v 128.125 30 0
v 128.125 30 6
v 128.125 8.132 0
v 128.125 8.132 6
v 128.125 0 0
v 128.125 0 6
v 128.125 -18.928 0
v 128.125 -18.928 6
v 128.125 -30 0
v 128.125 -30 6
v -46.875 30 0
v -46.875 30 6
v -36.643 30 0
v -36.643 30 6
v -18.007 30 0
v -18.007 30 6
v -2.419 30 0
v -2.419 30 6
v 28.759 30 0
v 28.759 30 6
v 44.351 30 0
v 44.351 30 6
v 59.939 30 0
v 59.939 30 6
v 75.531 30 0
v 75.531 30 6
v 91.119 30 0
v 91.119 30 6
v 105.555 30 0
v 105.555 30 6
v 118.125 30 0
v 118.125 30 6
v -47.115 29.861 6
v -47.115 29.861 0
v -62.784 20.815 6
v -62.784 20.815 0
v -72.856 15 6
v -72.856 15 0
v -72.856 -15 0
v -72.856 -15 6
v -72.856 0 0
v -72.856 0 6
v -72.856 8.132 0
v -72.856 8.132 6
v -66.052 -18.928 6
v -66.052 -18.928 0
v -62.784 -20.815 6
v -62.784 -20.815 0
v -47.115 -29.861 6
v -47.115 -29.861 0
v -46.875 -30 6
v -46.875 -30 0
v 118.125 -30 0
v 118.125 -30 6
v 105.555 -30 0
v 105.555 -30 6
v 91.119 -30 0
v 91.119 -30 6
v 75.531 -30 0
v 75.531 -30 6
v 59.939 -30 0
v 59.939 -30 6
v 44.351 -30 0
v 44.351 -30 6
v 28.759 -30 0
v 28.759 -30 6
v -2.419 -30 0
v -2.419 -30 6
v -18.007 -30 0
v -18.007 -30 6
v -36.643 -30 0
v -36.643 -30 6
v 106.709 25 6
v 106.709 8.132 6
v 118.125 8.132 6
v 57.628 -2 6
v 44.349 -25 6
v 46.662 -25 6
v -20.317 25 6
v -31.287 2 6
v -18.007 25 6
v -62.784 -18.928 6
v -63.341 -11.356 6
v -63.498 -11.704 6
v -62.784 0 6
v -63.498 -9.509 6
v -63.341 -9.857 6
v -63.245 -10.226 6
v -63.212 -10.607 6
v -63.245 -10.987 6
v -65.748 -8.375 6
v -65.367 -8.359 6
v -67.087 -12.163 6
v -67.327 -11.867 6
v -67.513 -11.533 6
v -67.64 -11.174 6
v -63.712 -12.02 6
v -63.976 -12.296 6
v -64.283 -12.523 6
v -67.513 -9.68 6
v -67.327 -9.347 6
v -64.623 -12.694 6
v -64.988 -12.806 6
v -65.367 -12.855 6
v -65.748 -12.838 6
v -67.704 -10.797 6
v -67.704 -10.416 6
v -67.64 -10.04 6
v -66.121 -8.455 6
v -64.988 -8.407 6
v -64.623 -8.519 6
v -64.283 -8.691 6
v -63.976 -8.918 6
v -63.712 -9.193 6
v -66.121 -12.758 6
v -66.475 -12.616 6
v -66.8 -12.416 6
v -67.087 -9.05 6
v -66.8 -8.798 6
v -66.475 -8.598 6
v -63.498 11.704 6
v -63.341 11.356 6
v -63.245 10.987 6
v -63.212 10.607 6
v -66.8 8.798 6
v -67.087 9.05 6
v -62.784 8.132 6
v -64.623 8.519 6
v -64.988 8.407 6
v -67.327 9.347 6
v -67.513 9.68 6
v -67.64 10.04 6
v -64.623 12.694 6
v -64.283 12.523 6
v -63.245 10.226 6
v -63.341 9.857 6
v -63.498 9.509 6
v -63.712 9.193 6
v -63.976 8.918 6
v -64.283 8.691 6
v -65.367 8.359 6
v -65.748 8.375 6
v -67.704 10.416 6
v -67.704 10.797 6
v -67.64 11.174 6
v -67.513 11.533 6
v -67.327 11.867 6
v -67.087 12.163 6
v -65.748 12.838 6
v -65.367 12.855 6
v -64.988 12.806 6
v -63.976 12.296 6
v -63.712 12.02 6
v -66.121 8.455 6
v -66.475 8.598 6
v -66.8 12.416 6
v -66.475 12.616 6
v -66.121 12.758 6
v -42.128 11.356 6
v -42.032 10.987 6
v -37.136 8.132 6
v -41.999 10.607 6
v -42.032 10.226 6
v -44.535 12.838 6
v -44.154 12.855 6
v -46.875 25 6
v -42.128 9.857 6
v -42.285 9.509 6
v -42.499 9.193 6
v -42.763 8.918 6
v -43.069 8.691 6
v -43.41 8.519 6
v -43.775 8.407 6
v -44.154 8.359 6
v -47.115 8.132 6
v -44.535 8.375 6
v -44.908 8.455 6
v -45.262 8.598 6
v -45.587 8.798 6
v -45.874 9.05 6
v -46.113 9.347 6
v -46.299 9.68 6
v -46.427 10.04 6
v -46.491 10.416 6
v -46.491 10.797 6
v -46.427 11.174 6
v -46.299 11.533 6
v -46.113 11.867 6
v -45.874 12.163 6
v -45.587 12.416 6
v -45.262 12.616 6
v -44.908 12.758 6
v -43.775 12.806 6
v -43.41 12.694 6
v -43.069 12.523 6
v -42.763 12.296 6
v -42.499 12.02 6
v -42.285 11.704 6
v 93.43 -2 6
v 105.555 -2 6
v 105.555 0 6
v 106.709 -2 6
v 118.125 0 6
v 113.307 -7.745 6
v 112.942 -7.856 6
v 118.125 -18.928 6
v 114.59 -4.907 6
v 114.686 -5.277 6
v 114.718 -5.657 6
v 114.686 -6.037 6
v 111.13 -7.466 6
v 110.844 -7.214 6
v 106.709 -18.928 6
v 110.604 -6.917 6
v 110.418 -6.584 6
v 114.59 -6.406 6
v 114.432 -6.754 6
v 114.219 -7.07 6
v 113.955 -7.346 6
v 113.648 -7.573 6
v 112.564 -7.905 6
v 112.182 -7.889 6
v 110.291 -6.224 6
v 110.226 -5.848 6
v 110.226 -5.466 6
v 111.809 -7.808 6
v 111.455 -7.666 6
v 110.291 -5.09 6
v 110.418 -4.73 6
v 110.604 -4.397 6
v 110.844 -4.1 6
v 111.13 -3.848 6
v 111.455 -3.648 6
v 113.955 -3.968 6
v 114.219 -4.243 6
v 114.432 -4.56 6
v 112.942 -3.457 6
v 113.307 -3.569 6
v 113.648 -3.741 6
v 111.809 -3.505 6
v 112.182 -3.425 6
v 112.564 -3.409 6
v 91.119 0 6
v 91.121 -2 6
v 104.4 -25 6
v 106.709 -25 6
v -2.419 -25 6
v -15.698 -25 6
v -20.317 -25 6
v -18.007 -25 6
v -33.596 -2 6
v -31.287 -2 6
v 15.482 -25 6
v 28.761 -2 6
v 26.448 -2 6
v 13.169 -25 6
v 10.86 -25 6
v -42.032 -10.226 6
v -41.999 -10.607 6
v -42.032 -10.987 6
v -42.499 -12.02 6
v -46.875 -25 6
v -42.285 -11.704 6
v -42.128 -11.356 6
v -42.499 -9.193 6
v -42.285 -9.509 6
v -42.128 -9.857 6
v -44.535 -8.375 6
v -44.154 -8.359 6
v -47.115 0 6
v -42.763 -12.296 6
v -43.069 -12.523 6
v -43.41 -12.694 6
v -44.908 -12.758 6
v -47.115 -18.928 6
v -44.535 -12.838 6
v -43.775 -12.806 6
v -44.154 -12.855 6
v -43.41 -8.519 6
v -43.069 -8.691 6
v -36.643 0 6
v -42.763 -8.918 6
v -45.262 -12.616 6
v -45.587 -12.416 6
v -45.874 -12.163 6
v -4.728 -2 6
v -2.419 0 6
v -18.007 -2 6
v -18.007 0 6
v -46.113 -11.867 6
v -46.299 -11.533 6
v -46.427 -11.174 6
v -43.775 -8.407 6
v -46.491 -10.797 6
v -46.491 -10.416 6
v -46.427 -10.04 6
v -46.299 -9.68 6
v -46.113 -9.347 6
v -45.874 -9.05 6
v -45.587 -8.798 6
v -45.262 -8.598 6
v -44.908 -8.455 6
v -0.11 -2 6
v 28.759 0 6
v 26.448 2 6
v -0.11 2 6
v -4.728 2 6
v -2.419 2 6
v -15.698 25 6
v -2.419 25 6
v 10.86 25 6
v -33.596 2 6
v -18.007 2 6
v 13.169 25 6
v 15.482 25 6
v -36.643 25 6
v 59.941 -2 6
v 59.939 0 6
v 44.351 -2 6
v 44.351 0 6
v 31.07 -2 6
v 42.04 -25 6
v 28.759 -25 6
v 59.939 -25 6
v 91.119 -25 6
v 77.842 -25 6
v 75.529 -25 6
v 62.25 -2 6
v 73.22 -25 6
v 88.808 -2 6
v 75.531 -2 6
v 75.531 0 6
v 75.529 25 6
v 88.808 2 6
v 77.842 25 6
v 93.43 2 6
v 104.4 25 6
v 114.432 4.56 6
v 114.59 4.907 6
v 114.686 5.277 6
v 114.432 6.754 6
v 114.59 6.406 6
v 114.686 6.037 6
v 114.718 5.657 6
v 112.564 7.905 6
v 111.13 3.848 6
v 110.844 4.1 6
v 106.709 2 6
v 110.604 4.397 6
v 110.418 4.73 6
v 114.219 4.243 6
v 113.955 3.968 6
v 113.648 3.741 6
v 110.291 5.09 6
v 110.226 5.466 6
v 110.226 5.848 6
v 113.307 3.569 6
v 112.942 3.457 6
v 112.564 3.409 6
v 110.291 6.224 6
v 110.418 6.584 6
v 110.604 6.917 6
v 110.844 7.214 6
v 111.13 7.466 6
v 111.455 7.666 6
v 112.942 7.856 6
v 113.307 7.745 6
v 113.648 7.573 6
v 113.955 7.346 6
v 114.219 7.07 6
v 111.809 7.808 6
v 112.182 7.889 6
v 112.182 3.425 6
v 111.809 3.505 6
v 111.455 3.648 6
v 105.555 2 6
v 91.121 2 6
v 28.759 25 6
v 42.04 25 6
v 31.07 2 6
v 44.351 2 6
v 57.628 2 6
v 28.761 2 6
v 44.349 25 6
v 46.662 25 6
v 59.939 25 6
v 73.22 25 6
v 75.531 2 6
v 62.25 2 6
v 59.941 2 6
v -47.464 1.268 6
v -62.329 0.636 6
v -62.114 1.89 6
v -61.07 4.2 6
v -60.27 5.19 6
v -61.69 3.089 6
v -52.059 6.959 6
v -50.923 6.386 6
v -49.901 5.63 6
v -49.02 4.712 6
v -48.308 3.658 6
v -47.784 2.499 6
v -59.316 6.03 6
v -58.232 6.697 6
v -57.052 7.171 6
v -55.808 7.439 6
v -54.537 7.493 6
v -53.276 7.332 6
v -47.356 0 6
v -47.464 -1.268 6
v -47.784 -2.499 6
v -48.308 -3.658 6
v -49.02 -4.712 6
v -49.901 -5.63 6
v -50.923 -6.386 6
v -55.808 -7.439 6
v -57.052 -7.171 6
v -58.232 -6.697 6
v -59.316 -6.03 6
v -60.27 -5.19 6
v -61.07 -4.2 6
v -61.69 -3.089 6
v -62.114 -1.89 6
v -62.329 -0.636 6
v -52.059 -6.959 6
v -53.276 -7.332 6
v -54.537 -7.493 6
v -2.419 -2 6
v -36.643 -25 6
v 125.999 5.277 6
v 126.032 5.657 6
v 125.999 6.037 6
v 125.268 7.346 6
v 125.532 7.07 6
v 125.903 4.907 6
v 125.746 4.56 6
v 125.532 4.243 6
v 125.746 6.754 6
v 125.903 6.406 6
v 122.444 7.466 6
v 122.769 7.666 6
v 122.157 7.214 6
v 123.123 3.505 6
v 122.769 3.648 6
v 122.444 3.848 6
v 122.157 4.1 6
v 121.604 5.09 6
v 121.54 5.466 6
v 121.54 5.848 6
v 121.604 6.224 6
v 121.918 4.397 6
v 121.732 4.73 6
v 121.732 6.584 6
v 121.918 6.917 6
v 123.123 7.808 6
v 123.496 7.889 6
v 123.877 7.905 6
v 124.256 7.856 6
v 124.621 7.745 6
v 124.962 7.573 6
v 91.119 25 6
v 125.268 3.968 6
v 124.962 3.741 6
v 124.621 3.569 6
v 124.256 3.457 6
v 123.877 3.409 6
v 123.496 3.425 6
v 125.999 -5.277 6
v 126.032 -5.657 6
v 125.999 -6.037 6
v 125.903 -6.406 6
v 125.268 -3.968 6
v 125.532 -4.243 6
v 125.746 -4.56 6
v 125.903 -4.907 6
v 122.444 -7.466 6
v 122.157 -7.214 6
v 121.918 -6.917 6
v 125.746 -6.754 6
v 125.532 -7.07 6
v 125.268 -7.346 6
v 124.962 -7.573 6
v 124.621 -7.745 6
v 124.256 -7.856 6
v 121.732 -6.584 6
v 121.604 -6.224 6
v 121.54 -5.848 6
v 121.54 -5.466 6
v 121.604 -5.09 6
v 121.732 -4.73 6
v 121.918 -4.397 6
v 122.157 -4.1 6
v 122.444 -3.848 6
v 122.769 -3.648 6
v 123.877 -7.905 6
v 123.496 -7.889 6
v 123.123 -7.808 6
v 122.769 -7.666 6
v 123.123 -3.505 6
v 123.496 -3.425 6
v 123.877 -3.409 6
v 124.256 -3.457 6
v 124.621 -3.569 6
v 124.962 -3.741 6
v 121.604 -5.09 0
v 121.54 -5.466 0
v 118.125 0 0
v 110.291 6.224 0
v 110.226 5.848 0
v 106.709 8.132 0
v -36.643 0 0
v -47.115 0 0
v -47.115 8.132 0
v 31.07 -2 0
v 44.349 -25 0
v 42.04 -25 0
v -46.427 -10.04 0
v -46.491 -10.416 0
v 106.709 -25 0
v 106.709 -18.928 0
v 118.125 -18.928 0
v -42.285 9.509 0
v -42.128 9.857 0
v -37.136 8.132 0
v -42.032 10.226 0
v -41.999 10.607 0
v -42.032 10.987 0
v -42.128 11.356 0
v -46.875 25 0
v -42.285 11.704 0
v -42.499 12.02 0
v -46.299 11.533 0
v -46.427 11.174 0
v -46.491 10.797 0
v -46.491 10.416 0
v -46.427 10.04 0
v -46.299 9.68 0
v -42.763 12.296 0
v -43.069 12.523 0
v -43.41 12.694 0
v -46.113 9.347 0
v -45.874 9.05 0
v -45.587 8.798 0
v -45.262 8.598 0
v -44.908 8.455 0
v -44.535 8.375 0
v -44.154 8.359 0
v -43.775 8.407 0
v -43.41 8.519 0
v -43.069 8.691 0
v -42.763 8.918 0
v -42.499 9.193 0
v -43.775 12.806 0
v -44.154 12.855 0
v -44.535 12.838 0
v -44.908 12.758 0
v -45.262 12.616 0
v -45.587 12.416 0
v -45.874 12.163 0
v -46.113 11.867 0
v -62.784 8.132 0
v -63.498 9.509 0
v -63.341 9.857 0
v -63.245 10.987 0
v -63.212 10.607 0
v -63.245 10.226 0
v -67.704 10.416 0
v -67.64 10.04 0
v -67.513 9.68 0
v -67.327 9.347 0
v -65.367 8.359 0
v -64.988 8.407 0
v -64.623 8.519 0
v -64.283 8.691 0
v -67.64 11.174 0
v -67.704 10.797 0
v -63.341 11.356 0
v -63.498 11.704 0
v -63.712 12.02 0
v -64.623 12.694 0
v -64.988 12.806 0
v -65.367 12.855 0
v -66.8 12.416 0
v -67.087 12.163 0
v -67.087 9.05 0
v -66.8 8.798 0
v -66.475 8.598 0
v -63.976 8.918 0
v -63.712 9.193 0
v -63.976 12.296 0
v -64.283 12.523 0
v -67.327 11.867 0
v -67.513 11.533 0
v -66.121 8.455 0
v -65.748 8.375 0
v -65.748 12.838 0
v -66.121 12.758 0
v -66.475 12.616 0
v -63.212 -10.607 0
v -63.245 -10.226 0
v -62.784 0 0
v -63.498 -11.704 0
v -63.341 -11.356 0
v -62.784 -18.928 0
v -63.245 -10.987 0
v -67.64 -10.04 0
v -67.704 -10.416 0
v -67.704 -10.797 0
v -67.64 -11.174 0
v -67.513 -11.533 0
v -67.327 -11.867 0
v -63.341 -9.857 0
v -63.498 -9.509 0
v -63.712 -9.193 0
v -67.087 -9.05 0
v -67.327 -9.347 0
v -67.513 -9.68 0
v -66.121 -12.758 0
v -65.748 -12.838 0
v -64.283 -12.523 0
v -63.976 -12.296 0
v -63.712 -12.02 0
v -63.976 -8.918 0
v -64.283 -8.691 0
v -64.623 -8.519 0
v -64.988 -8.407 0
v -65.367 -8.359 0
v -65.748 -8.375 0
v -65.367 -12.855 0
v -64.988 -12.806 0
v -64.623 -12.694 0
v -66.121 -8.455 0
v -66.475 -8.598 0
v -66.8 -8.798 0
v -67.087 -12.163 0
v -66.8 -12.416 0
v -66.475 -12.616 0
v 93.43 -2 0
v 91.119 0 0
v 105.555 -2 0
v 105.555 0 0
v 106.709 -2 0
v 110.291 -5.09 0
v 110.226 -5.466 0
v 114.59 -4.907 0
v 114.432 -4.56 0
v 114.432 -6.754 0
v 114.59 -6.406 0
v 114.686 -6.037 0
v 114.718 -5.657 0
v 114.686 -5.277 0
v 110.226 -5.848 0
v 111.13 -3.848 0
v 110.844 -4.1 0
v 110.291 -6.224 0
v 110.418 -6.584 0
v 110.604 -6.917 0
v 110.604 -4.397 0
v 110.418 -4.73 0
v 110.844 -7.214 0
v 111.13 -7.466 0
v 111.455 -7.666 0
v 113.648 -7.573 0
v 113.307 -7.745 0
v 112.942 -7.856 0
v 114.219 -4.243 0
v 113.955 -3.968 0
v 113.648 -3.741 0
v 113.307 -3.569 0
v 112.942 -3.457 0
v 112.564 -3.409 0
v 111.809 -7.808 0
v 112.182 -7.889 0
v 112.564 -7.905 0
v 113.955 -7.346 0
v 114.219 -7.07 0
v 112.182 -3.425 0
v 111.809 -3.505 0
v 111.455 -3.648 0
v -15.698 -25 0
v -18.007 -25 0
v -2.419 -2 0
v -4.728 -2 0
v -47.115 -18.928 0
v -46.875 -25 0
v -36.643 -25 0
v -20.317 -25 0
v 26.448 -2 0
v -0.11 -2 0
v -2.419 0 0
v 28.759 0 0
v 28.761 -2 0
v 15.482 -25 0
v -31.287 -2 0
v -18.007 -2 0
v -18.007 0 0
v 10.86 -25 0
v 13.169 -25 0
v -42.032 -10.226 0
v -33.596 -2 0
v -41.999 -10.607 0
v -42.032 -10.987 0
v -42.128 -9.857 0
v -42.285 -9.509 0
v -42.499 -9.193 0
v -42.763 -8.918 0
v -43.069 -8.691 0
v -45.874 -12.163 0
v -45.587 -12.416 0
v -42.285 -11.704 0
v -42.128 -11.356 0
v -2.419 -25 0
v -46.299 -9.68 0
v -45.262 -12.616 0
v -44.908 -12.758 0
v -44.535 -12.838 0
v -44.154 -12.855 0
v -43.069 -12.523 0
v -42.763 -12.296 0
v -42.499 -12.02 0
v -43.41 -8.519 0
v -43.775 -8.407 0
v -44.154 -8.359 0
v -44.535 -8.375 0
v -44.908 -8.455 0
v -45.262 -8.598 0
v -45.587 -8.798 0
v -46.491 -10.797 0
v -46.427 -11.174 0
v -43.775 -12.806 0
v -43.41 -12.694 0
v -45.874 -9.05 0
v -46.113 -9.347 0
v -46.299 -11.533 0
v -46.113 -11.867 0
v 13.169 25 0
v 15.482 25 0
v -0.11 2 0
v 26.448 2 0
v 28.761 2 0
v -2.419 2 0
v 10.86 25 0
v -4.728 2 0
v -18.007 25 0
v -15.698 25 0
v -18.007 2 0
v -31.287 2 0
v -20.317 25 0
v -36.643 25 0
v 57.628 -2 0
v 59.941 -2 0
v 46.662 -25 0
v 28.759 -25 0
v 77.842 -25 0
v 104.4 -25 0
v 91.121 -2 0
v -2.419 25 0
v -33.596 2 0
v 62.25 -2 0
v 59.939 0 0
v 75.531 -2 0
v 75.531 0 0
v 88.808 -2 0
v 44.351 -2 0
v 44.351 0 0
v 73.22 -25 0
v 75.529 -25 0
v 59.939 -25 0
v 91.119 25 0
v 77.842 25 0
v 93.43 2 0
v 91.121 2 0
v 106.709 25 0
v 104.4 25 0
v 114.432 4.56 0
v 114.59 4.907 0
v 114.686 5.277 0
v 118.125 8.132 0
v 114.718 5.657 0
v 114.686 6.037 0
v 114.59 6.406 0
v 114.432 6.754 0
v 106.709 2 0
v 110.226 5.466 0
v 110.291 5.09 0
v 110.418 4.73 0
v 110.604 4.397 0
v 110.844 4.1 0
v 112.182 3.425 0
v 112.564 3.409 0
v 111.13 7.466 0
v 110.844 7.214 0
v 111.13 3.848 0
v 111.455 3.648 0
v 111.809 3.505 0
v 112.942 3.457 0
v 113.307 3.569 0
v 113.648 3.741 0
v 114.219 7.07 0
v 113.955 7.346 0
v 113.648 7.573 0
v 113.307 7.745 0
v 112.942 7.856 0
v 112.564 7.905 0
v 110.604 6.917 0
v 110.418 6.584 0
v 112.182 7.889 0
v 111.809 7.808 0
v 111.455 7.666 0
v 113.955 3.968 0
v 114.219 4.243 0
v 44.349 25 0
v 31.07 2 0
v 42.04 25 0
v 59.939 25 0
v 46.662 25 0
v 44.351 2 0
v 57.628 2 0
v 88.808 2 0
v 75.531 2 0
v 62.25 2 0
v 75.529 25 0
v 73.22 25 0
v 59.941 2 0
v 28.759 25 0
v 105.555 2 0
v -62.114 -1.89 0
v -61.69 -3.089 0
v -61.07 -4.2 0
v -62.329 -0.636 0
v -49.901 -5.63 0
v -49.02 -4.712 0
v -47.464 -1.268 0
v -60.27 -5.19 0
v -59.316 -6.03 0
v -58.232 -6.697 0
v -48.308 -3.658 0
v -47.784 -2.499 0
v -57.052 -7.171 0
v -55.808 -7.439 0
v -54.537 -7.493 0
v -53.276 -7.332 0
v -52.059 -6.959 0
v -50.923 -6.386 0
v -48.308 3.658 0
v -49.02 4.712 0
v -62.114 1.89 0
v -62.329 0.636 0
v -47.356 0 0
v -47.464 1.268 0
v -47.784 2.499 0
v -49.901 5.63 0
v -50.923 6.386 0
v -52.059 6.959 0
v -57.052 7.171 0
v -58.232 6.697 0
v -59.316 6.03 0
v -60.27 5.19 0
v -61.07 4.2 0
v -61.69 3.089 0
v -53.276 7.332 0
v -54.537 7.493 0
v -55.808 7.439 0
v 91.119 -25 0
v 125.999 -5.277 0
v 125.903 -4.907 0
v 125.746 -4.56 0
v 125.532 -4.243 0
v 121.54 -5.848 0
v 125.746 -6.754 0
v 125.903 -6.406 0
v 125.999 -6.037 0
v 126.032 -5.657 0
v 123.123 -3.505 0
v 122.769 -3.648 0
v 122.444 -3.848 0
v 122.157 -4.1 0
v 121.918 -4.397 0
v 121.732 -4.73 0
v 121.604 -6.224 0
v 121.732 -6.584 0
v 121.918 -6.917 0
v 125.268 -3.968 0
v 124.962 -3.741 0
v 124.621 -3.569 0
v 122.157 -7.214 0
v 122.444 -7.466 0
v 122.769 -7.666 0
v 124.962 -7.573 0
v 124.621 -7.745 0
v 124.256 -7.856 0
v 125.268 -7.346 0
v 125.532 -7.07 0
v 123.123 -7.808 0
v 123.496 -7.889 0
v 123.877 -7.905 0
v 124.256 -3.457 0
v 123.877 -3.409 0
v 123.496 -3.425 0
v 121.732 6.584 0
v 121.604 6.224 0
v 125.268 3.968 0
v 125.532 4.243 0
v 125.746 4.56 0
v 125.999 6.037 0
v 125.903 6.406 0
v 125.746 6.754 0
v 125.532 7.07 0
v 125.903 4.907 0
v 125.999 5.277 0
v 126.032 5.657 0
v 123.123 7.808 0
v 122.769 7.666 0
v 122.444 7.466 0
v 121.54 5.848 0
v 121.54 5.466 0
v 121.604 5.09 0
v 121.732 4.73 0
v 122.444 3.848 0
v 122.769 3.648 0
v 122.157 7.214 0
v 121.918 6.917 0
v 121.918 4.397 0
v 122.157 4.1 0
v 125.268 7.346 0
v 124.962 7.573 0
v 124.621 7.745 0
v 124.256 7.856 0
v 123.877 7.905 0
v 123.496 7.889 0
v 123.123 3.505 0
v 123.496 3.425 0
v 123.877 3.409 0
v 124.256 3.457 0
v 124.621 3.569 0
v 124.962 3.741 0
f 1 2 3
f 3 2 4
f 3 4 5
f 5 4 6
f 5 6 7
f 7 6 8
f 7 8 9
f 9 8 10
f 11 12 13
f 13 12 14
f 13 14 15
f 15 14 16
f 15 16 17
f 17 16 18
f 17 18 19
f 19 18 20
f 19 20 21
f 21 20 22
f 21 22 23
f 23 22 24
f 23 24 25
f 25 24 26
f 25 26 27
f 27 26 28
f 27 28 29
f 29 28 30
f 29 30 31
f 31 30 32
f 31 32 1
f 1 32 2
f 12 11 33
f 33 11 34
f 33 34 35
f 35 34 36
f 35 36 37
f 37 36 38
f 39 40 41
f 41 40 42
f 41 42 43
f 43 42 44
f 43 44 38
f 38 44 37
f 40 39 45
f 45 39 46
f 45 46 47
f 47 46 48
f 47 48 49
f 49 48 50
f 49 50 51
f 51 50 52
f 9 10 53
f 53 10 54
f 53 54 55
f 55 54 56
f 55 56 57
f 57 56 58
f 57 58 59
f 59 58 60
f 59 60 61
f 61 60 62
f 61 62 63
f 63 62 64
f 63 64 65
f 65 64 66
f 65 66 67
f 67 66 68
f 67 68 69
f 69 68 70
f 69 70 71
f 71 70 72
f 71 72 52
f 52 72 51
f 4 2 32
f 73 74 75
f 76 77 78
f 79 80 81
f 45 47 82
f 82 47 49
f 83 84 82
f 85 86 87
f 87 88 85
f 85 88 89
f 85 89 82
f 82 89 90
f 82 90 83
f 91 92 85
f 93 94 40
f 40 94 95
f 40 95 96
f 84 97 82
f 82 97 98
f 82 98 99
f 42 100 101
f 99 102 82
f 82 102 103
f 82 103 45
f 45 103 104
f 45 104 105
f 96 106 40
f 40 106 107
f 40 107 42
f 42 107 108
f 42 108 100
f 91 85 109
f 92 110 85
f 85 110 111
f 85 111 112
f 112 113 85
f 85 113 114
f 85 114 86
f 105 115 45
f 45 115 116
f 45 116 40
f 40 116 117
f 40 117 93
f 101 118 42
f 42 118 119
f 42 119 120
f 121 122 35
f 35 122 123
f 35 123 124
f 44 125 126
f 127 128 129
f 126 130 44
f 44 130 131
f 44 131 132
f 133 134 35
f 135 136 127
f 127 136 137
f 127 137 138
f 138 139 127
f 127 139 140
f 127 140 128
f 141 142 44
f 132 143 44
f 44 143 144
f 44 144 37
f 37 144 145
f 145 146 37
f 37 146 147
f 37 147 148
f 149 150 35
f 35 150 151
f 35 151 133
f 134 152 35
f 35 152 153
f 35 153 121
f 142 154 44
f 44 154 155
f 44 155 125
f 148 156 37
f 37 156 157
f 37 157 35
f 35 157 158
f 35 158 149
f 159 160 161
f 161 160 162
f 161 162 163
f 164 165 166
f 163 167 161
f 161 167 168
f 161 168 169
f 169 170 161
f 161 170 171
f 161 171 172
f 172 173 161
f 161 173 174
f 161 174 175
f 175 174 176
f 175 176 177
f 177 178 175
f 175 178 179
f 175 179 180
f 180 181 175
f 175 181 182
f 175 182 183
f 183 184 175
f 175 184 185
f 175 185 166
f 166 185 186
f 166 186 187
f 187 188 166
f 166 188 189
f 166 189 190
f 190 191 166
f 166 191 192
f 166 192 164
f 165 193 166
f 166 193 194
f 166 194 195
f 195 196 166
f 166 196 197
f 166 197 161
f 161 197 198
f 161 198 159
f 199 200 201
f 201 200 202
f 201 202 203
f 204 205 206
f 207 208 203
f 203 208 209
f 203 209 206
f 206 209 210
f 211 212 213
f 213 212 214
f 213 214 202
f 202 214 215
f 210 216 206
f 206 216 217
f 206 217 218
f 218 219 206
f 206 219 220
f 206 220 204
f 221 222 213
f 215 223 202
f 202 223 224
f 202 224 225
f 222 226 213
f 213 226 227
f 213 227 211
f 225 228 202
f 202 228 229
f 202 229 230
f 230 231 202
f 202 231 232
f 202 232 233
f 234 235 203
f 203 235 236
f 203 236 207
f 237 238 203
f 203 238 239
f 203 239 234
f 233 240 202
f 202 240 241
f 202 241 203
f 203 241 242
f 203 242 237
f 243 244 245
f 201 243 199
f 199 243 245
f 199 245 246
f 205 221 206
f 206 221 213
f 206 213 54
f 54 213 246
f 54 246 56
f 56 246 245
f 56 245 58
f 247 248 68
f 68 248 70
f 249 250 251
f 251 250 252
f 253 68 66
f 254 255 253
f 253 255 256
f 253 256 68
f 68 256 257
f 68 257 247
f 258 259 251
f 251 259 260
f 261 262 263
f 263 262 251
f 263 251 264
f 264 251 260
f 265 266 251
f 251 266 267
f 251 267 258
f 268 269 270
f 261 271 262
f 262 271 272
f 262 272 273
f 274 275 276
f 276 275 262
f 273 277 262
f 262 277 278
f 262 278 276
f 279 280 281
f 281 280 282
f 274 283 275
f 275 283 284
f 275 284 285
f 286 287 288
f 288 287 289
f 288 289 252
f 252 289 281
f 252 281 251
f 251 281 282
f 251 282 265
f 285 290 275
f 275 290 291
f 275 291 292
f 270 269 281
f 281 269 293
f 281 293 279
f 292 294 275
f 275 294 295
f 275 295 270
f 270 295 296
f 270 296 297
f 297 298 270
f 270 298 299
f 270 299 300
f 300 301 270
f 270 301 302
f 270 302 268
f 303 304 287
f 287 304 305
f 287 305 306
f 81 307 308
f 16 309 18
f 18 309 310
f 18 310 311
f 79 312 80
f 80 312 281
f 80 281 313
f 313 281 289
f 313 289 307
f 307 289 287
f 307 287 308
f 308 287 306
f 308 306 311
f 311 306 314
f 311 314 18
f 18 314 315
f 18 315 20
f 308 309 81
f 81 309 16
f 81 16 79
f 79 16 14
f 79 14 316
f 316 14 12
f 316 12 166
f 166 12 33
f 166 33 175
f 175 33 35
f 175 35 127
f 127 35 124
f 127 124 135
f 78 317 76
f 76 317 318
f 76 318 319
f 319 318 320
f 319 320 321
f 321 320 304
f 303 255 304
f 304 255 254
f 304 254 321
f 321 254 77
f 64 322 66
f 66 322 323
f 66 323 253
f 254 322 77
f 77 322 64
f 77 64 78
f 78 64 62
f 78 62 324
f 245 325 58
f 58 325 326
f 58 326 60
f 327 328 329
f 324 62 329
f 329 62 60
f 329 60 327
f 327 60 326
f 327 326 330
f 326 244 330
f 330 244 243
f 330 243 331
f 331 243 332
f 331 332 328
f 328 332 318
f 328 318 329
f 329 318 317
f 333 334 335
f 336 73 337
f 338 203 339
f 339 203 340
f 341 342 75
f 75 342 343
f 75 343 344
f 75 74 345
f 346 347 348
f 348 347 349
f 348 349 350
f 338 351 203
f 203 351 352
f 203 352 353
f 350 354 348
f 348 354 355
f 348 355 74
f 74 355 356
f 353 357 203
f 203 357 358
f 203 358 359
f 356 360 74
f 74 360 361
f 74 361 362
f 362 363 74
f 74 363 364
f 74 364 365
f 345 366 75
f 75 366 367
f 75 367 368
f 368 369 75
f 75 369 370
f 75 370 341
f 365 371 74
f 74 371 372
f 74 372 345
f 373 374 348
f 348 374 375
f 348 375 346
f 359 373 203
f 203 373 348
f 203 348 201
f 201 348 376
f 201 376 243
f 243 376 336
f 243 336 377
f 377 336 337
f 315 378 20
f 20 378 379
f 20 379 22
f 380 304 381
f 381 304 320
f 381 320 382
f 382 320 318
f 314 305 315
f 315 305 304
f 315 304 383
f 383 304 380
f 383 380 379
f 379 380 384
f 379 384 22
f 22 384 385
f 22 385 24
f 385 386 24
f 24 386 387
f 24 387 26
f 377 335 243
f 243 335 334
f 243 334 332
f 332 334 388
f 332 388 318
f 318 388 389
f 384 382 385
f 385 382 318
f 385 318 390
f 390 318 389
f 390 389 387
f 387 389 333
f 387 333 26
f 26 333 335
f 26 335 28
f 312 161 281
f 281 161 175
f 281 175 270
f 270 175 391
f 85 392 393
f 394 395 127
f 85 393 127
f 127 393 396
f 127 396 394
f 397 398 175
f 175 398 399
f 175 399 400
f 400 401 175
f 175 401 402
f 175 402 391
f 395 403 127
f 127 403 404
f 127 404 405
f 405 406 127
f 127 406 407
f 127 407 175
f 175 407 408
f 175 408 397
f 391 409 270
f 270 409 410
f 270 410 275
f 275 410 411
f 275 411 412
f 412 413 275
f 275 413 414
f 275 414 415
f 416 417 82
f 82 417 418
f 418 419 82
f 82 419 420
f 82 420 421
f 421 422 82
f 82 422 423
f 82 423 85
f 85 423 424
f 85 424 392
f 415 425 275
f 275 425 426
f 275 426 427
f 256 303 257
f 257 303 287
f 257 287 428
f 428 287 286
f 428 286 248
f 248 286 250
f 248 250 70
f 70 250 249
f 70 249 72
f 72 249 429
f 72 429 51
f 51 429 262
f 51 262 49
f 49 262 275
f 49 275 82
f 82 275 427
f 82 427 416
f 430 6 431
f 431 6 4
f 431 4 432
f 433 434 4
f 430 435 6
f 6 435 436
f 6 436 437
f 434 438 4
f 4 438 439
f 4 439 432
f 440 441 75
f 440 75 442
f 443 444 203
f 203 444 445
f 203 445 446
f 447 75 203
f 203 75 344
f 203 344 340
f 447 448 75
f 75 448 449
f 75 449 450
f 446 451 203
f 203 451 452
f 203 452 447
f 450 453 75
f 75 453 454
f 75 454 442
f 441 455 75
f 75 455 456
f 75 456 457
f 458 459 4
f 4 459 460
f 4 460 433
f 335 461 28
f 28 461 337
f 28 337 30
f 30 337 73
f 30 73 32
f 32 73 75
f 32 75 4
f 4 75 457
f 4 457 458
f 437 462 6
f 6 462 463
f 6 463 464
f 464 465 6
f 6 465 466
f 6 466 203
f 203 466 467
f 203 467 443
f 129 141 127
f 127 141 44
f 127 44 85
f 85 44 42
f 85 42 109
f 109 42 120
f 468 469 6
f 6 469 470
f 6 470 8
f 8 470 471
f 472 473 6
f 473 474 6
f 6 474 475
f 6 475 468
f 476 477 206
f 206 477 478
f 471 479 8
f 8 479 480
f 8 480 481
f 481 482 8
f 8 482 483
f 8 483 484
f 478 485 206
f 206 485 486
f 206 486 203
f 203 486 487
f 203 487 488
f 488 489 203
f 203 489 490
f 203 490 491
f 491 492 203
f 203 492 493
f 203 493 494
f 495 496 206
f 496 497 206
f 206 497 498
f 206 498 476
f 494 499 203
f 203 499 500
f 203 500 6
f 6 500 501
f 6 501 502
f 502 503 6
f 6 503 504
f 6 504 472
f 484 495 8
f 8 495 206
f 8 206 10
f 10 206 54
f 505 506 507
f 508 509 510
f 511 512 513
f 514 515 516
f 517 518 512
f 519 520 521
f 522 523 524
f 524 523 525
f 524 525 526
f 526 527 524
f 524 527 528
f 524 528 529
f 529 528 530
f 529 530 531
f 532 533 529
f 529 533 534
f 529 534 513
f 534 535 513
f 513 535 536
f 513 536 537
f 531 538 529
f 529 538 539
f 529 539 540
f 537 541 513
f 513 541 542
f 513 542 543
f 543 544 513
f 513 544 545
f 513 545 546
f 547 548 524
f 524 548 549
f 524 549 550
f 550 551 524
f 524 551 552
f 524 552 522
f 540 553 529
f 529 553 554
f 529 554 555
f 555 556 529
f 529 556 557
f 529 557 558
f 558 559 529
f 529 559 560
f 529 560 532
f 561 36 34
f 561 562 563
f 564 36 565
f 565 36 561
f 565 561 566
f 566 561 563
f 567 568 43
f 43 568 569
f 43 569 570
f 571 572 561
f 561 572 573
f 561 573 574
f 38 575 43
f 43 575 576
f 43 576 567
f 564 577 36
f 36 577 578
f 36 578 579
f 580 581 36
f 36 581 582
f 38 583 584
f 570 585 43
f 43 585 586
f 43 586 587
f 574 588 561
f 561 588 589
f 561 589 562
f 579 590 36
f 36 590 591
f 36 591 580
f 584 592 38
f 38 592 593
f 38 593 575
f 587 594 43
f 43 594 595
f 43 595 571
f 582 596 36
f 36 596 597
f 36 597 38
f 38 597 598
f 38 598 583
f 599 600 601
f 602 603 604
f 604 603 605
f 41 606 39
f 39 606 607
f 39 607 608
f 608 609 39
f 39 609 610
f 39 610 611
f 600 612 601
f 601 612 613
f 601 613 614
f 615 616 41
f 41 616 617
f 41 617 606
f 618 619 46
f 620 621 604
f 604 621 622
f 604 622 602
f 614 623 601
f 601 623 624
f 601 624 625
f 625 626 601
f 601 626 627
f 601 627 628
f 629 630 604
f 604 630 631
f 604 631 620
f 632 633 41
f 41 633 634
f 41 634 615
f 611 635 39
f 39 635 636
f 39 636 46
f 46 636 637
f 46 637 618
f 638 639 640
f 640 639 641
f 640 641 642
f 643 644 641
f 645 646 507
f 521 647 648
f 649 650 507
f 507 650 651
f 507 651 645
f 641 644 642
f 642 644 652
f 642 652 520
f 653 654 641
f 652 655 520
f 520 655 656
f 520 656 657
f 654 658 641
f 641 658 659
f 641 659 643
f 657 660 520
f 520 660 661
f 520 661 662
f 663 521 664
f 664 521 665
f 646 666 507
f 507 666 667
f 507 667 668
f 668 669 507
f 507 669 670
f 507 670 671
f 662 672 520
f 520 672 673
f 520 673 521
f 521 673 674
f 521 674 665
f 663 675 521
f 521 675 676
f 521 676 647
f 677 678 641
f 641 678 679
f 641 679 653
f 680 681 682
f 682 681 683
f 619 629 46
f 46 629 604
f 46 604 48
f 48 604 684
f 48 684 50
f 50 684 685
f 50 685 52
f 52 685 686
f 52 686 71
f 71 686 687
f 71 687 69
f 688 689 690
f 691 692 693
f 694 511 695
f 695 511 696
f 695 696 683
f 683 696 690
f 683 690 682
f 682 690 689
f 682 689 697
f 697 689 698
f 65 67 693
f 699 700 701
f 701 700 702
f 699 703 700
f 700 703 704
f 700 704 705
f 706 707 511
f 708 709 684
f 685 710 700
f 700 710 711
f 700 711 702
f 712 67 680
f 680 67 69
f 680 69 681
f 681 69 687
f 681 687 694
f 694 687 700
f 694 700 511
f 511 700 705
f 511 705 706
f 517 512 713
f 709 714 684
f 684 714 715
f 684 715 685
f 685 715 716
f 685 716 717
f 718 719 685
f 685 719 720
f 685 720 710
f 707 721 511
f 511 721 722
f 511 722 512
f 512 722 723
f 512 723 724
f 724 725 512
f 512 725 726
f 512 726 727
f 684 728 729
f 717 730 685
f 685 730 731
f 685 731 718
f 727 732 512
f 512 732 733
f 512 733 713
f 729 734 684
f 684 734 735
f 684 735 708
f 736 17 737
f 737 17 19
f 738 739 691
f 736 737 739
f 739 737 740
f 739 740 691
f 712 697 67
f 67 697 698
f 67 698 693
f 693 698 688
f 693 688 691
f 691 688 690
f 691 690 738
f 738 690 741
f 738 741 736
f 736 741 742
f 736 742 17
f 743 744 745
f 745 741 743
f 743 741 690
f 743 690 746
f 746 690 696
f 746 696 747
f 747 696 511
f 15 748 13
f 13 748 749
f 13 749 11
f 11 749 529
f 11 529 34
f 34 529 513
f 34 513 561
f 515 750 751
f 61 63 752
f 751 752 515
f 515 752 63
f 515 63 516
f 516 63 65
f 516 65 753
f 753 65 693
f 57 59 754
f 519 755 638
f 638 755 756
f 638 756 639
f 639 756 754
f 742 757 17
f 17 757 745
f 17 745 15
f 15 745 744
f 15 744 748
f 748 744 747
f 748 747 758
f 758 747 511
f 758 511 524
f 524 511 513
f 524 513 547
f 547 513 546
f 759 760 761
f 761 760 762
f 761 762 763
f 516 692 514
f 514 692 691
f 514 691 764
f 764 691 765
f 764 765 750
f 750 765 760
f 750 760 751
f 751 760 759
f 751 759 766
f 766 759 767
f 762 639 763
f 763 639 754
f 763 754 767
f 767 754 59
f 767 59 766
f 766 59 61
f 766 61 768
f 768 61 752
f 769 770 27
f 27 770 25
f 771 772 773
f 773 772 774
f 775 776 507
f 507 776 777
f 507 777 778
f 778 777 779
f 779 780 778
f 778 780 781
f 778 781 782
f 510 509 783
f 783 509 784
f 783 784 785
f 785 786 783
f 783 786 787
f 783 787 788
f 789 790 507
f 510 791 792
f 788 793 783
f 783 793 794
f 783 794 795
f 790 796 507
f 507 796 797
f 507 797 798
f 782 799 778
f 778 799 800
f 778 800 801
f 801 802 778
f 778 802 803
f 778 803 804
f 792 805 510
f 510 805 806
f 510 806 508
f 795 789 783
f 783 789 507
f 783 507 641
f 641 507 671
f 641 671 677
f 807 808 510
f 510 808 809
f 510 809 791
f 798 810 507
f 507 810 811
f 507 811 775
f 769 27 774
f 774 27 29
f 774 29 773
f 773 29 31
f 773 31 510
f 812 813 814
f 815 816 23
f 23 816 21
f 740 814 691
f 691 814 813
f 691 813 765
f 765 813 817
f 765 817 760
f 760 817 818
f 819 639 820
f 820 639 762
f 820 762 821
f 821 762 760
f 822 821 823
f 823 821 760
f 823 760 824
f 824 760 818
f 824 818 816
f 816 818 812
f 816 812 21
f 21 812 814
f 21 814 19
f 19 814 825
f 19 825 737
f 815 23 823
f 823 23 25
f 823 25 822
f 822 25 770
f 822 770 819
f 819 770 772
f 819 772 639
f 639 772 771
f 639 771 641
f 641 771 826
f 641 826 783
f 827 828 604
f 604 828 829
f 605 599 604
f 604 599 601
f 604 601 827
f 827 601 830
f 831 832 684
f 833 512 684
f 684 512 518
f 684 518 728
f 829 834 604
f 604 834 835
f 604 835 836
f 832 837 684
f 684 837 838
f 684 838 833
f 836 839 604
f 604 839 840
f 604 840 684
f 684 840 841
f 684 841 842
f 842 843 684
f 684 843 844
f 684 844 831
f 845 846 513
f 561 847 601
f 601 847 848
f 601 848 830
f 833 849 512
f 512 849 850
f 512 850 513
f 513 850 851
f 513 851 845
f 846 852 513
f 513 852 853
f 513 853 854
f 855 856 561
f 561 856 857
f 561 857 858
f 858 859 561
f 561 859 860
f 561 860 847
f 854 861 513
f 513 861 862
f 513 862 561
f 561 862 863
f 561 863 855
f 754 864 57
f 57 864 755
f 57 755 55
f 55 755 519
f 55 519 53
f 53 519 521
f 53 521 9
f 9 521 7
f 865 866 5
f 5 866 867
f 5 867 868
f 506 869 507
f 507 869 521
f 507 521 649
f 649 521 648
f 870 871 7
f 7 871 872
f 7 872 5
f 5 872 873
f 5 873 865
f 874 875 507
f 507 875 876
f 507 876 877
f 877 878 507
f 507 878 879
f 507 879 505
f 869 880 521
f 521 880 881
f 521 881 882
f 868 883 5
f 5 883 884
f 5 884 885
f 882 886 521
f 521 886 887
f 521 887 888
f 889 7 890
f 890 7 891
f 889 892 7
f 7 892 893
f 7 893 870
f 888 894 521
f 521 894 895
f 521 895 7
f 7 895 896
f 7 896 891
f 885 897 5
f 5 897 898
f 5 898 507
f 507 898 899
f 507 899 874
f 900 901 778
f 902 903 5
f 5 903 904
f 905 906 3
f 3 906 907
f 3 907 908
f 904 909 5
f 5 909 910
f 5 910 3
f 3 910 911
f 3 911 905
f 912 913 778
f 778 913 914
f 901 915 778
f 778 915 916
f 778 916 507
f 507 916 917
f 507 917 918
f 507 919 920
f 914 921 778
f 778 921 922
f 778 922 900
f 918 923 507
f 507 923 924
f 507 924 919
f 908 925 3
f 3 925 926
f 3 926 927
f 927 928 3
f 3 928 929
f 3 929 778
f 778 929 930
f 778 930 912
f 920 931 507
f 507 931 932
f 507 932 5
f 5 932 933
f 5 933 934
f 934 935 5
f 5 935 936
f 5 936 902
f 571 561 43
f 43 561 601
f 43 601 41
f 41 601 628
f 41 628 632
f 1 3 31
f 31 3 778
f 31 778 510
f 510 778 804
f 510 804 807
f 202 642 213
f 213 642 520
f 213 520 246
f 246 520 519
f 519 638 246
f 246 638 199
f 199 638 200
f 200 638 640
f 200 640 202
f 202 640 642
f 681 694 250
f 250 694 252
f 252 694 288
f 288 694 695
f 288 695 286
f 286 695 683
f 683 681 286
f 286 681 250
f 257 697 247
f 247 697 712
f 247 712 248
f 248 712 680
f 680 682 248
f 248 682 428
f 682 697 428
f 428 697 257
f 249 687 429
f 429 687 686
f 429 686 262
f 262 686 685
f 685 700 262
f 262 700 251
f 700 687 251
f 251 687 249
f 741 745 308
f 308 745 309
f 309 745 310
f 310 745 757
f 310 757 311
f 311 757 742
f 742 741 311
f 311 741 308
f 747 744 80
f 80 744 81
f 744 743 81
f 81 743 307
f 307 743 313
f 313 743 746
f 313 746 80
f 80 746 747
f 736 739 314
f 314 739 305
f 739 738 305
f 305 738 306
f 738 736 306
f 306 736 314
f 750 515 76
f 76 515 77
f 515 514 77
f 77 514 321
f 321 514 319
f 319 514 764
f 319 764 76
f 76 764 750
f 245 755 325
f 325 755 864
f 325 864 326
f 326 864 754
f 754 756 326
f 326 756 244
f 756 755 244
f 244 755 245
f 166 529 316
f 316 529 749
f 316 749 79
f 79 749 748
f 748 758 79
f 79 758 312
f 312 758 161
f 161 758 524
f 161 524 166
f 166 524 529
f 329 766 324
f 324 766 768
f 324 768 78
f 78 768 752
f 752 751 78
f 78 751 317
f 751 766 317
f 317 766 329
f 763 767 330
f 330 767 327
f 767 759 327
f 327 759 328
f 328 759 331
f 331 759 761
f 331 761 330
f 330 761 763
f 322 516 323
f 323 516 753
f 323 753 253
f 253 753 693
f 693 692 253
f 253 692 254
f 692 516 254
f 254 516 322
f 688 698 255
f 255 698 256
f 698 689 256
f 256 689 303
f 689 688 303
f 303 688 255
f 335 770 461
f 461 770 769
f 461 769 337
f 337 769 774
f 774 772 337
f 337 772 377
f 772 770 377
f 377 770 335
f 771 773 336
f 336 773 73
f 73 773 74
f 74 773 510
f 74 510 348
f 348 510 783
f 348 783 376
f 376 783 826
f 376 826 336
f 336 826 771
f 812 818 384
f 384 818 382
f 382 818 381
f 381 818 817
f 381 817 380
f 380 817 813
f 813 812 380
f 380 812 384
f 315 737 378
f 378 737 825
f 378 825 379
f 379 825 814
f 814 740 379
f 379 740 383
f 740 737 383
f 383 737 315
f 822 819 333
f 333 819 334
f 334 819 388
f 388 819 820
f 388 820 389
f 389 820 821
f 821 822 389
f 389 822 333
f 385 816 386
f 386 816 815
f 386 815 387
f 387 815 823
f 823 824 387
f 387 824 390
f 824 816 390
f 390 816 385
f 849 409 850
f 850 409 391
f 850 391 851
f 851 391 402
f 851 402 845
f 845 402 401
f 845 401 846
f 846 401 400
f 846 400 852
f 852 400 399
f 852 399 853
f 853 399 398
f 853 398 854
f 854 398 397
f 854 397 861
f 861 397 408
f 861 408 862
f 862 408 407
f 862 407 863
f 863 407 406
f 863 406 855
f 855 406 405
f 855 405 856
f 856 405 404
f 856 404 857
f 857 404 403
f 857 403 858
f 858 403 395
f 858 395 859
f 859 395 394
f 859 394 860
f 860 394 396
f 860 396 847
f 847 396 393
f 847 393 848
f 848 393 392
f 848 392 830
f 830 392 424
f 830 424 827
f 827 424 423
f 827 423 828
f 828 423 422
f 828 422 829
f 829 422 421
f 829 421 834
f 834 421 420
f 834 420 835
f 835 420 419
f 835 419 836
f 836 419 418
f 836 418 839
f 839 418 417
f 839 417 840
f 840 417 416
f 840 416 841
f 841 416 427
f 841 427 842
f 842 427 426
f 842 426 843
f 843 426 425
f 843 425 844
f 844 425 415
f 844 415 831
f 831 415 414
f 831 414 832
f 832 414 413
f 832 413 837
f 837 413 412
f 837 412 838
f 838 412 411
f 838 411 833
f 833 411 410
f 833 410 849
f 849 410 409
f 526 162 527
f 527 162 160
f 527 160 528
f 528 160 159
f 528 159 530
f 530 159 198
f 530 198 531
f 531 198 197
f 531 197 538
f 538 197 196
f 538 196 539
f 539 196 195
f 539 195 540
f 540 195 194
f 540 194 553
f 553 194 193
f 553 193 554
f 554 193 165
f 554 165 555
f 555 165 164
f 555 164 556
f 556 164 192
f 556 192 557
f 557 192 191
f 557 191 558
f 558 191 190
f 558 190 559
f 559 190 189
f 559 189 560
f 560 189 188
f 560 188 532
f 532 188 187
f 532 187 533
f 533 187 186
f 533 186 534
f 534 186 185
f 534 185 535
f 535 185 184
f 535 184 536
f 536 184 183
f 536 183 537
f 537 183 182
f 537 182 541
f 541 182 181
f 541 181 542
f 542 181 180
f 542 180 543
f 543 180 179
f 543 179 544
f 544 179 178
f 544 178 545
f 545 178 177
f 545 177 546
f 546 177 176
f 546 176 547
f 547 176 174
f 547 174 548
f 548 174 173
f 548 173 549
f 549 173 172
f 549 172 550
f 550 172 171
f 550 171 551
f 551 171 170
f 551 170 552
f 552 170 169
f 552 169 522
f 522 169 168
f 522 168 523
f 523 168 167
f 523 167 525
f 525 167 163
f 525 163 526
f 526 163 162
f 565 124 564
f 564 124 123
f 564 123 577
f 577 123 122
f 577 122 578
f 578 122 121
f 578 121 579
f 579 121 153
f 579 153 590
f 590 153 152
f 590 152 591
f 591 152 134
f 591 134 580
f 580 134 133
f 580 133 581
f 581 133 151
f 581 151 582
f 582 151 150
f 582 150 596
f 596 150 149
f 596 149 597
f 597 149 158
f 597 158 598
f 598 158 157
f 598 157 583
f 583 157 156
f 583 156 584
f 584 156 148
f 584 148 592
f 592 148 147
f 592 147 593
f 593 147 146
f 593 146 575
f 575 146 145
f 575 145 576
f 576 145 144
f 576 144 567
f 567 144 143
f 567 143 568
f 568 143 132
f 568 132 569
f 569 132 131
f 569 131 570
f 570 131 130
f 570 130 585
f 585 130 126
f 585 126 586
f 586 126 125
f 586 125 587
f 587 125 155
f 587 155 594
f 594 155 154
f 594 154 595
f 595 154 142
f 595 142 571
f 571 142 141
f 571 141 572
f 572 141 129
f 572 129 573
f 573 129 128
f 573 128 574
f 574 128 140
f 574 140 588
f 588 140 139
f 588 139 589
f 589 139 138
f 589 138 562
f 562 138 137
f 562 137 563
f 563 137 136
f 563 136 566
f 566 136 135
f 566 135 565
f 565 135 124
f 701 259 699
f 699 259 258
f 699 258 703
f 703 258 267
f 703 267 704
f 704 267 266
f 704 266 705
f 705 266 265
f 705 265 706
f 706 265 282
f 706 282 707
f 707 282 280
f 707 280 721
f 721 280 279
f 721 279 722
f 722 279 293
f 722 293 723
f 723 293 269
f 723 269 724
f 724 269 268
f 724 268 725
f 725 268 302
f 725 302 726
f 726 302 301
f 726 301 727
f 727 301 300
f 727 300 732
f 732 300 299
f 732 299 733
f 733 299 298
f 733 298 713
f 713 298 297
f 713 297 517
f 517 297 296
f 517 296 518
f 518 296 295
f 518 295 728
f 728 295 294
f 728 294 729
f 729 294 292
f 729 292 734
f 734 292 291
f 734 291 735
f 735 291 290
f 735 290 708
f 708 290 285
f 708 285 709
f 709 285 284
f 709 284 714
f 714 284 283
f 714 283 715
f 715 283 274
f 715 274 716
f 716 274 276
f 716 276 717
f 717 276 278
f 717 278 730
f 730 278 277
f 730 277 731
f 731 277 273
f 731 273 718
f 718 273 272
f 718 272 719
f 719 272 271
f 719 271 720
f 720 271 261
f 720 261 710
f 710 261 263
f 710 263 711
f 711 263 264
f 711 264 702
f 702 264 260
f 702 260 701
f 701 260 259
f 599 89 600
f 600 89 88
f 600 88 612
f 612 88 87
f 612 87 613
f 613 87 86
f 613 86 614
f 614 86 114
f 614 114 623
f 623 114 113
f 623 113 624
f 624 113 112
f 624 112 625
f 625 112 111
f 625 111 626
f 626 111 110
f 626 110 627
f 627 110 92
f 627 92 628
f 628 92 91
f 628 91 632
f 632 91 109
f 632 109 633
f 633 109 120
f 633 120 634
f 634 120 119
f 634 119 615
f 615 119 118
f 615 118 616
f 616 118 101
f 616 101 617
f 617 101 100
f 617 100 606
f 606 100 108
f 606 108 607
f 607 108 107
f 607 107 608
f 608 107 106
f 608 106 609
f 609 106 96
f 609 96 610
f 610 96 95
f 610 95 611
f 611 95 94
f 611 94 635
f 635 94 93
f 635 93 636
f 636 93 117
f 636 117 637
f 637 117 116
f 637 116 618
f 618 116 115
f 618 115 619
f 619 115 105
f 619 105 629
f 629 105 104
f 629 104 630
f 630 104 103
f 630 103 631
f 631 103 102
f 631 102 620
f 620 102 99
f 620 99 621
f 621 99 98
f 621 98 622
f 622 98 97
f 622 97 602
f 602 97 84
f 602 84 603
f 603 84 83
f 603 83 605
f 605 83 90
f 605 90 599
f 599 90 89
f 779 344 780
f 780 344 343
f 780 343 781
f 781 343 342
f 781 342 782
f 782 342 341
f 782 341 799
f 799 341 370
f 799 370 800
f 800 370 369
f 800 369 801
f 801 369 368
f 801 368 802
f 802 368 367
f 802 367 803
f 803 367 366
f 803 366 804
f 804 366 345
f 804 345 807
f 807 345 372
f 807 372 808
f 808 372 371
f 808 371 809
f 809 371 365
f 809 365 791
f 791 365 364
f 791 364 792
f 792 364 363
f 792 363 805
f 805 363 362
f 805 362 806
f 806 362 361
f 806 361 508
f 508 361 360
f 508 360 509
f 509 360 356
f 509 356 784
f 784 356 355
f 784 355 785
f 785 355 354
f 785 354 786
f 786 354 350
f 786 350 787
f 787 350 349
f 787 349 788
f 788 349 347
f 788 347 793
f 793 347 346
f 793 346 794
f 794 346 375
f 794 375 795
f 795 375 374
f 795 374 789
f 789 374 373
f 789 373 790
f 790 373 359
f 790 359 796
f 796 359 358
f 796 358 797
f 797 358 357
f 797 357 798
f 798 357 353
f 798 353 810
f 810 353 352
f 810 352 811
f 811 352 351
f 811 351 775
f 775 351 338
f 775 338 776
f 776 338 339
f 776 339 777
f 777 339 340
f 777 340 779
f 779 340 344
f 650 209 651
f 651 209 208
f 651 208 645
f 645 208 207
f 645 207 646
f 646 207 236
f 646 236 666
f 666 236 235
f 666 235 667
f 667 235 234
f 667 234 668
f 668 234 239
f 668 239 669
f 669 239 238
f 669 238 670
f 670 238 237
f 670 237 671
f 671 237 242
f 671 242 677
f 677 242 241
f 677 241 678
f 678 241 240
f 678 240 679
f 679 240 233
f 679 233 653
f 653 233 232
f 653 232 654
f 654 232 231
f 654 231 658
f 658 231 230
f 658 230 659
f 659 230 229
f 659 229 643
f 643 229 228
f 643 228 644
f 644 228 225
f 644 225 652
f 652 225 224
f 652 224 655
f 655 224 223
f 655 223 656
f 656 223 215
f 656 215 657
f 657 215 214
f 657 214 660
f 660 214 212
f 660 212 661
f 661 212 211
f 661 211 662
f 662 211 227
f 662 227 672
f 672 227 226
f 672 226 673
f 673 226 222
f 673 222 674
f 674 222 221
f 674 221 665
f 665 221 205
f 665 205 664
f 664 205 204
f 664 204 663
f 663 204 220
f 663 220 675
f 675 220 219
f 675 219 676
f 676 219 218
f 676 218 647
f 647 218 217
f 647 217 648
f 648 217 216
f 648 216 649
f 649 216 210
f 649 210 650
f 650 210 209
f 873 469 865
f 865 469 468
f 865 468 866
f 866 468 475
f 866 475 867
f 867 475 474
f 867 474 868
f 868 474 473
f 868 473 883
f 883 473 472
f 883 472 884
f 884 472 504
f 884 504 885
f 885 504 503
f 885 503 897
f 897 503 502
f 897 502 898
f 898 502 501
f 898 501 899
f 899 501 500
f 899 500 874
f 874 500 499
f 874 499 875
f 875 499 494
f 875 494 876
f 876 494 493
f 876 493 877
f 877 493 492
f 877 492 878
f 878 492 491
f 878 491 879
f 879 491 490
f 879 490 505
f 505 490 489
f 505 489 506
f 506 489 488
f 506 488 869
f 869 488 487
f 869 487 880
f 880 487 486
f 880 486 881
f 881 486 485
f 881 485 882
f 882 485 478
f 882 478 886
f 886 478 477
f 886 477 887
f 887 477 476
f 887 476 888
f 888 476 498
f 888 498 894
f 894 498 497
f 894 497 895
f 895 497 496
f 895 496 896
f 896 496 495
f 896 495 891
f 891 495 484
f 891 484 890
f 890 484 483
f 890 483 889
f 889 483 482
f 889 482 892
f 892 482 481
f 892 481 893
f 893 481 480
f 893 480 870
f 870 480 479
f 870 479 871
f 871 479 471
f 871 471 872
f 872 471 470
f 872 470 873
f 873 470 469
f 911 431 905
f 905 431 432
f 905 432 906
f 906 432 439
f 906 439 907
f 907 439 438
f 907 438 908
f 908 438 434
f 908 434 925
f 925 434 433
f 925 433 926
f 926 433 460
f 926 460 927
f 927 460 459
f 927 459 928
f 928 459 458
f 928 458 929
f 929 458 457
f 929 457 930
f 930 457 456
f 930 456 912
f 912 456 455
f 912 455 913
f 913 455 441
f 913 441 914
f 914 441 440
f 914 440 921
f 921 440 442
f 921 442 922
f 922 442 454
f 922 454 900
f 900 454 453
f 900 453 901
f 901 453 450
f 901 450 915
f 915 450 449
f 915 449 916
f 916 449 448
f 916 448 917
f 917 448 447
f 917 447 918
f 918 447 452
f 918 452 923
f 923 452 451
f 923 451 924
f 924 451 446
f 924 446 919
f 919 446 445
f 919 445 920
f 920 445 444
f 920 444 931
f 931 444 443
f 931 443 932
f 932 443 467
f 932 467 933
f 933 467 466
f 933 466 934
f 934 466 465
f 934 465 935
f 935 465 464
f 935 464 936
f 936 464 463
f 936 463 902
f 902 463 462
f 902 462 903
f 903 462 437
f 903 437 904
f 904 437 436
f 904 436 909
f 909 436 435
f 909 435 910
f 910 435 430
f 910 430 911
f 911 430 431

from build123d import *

# Parameters (mm, degrees)
BOSS_EXTRUDE1_DEPTH = 6
CUT_EXTRUDE3_DEPTH  = 132.727049709
HOLE1_D             = 15
HOLE3_D             = 4.5
HOLE4_D             = 4.5


with BuildPart() as part:
    # Sketch1 → Boss-Extrude1 (new body)
    with BuildSketch(Plane(origin=(0, 0, 0), x_dir=(0, 1, 0), z_dir=(0, 0, 1))):
        Polygon((-30, 46.875), (-30, -128.125), (30, -128.125), (30, 46.875), (15, 72.855762114), (-15, 72.855762114), align=None)
    extrude(amount=BOSS_EXTRUDE1_DEPTH)

    # Sketch2 → Cut-Extrude3 (cut, through all)
    with BuildSketch(Plane.XY.offset(6)):
        Polygon((-31.286542732, 2), (-4.728430349, 2), (-18.007486541, 25), align=None)
        Polygon((106.709427996, -25), (93.430371804, -2), (106.709427996, -2), align=None)
        Polygon((-15.698085464, 25), (10.860026919, 25), (-2.419029272, 2), align=None)
        Polygon((106.709427996, 25), (106.709427996, 2), (93.430371804, 2), align=None)
        Polygon((-0.109628196, 2), (26.448484187, 2), (13.169427996, 25), align=None)
        Polygon((-46.875, 25), (-33.595943809, 2), (-20.316887617, 25), align=None)
        Polygon((15.481914536, 25), (28.760970728, 2), (42.040026919, 25), align=None)
        Polygon((44.349427996, 25), (31.070371804, 2), (57.628484187, 2), align=None)
        Polygon((46.661914536, 25), (59.940970728, 2), (73.220026919, 25), align=None)
        Polygon((75.529427996, 25), (62.250371804, 2), (88.808484187, 2), align=None)
        Polygon((77.841914536, 25), (91.120970728, 2), (104.400026919, 25), align=None)
        Polygon((77.841914536, -25), (91.120970728, -2), (104.400026919, -25), align=None)
        Polygon((75.529427996, -25), (62.250371804, -2), (88.808484187, -2), align=None)
        Polygon((46.661914536, -25), (59.940970728, -2), (73.220026919, -25), align=None)
        Polygon((44.349427996, -25), (31.070371804, -2), (57.628484187, -2), align=None)
        Polygon((15.481914536, -25), (28.760970728, -2), (42.040026919, -25), align=None)
        Polygon((13.169427996, -25), (-0.109628196, -2), (26.448484187, -2), align=None)
        Polygon((-15.698085464, -25), (-2.419029272, -2), (10.860026919, -25), align=None)
        Polygon((-18.007486541, -25), (-4.728430349, -2), (-31.286542732, -2), align=None)
        Polygon((-46.875, -25), (-33.595943809, -2), (-20.316887617, -25), align=None)
    extrude(amount=-CUT_EXTRUDE3_DEPTH, mode=Mode.SUBTRACT)

    # Hole1 (through all)
    with Locations(Plane(origin=(-54.855762114, 0, 6), x_dir=(1, 0, 0), z_dir=(0, 0, 1))):
        with Locations((0, 0)):
            Hole(HOLE1_D / 2)

    # Hole3 (through all)
    with Locations(Plane(origin=(-65.462363831, -10.606601718, 6), x_dir=(1, 0, 0), z_dir=(0, 0, 1))):
        with Locations((0, 0), (21.213203435, 0), (0, 21.213203436), (21.213203435, 21.213203436)):
            Hole(HOLE3_D / 2)

    # Hole4 (through all)
    with Locations(Plane(origin=(123.781854249, 5.656854249, 6), x_dir=(1, 0, 0), z_dir=(0, 0, 1))):
        with Locations((0, 0), (0, -11.313708498), (-11.313708498, -11.313708498), (-11.313708498, 0)):
            Hole(HOLE4_D / 2)


solid = part.part
